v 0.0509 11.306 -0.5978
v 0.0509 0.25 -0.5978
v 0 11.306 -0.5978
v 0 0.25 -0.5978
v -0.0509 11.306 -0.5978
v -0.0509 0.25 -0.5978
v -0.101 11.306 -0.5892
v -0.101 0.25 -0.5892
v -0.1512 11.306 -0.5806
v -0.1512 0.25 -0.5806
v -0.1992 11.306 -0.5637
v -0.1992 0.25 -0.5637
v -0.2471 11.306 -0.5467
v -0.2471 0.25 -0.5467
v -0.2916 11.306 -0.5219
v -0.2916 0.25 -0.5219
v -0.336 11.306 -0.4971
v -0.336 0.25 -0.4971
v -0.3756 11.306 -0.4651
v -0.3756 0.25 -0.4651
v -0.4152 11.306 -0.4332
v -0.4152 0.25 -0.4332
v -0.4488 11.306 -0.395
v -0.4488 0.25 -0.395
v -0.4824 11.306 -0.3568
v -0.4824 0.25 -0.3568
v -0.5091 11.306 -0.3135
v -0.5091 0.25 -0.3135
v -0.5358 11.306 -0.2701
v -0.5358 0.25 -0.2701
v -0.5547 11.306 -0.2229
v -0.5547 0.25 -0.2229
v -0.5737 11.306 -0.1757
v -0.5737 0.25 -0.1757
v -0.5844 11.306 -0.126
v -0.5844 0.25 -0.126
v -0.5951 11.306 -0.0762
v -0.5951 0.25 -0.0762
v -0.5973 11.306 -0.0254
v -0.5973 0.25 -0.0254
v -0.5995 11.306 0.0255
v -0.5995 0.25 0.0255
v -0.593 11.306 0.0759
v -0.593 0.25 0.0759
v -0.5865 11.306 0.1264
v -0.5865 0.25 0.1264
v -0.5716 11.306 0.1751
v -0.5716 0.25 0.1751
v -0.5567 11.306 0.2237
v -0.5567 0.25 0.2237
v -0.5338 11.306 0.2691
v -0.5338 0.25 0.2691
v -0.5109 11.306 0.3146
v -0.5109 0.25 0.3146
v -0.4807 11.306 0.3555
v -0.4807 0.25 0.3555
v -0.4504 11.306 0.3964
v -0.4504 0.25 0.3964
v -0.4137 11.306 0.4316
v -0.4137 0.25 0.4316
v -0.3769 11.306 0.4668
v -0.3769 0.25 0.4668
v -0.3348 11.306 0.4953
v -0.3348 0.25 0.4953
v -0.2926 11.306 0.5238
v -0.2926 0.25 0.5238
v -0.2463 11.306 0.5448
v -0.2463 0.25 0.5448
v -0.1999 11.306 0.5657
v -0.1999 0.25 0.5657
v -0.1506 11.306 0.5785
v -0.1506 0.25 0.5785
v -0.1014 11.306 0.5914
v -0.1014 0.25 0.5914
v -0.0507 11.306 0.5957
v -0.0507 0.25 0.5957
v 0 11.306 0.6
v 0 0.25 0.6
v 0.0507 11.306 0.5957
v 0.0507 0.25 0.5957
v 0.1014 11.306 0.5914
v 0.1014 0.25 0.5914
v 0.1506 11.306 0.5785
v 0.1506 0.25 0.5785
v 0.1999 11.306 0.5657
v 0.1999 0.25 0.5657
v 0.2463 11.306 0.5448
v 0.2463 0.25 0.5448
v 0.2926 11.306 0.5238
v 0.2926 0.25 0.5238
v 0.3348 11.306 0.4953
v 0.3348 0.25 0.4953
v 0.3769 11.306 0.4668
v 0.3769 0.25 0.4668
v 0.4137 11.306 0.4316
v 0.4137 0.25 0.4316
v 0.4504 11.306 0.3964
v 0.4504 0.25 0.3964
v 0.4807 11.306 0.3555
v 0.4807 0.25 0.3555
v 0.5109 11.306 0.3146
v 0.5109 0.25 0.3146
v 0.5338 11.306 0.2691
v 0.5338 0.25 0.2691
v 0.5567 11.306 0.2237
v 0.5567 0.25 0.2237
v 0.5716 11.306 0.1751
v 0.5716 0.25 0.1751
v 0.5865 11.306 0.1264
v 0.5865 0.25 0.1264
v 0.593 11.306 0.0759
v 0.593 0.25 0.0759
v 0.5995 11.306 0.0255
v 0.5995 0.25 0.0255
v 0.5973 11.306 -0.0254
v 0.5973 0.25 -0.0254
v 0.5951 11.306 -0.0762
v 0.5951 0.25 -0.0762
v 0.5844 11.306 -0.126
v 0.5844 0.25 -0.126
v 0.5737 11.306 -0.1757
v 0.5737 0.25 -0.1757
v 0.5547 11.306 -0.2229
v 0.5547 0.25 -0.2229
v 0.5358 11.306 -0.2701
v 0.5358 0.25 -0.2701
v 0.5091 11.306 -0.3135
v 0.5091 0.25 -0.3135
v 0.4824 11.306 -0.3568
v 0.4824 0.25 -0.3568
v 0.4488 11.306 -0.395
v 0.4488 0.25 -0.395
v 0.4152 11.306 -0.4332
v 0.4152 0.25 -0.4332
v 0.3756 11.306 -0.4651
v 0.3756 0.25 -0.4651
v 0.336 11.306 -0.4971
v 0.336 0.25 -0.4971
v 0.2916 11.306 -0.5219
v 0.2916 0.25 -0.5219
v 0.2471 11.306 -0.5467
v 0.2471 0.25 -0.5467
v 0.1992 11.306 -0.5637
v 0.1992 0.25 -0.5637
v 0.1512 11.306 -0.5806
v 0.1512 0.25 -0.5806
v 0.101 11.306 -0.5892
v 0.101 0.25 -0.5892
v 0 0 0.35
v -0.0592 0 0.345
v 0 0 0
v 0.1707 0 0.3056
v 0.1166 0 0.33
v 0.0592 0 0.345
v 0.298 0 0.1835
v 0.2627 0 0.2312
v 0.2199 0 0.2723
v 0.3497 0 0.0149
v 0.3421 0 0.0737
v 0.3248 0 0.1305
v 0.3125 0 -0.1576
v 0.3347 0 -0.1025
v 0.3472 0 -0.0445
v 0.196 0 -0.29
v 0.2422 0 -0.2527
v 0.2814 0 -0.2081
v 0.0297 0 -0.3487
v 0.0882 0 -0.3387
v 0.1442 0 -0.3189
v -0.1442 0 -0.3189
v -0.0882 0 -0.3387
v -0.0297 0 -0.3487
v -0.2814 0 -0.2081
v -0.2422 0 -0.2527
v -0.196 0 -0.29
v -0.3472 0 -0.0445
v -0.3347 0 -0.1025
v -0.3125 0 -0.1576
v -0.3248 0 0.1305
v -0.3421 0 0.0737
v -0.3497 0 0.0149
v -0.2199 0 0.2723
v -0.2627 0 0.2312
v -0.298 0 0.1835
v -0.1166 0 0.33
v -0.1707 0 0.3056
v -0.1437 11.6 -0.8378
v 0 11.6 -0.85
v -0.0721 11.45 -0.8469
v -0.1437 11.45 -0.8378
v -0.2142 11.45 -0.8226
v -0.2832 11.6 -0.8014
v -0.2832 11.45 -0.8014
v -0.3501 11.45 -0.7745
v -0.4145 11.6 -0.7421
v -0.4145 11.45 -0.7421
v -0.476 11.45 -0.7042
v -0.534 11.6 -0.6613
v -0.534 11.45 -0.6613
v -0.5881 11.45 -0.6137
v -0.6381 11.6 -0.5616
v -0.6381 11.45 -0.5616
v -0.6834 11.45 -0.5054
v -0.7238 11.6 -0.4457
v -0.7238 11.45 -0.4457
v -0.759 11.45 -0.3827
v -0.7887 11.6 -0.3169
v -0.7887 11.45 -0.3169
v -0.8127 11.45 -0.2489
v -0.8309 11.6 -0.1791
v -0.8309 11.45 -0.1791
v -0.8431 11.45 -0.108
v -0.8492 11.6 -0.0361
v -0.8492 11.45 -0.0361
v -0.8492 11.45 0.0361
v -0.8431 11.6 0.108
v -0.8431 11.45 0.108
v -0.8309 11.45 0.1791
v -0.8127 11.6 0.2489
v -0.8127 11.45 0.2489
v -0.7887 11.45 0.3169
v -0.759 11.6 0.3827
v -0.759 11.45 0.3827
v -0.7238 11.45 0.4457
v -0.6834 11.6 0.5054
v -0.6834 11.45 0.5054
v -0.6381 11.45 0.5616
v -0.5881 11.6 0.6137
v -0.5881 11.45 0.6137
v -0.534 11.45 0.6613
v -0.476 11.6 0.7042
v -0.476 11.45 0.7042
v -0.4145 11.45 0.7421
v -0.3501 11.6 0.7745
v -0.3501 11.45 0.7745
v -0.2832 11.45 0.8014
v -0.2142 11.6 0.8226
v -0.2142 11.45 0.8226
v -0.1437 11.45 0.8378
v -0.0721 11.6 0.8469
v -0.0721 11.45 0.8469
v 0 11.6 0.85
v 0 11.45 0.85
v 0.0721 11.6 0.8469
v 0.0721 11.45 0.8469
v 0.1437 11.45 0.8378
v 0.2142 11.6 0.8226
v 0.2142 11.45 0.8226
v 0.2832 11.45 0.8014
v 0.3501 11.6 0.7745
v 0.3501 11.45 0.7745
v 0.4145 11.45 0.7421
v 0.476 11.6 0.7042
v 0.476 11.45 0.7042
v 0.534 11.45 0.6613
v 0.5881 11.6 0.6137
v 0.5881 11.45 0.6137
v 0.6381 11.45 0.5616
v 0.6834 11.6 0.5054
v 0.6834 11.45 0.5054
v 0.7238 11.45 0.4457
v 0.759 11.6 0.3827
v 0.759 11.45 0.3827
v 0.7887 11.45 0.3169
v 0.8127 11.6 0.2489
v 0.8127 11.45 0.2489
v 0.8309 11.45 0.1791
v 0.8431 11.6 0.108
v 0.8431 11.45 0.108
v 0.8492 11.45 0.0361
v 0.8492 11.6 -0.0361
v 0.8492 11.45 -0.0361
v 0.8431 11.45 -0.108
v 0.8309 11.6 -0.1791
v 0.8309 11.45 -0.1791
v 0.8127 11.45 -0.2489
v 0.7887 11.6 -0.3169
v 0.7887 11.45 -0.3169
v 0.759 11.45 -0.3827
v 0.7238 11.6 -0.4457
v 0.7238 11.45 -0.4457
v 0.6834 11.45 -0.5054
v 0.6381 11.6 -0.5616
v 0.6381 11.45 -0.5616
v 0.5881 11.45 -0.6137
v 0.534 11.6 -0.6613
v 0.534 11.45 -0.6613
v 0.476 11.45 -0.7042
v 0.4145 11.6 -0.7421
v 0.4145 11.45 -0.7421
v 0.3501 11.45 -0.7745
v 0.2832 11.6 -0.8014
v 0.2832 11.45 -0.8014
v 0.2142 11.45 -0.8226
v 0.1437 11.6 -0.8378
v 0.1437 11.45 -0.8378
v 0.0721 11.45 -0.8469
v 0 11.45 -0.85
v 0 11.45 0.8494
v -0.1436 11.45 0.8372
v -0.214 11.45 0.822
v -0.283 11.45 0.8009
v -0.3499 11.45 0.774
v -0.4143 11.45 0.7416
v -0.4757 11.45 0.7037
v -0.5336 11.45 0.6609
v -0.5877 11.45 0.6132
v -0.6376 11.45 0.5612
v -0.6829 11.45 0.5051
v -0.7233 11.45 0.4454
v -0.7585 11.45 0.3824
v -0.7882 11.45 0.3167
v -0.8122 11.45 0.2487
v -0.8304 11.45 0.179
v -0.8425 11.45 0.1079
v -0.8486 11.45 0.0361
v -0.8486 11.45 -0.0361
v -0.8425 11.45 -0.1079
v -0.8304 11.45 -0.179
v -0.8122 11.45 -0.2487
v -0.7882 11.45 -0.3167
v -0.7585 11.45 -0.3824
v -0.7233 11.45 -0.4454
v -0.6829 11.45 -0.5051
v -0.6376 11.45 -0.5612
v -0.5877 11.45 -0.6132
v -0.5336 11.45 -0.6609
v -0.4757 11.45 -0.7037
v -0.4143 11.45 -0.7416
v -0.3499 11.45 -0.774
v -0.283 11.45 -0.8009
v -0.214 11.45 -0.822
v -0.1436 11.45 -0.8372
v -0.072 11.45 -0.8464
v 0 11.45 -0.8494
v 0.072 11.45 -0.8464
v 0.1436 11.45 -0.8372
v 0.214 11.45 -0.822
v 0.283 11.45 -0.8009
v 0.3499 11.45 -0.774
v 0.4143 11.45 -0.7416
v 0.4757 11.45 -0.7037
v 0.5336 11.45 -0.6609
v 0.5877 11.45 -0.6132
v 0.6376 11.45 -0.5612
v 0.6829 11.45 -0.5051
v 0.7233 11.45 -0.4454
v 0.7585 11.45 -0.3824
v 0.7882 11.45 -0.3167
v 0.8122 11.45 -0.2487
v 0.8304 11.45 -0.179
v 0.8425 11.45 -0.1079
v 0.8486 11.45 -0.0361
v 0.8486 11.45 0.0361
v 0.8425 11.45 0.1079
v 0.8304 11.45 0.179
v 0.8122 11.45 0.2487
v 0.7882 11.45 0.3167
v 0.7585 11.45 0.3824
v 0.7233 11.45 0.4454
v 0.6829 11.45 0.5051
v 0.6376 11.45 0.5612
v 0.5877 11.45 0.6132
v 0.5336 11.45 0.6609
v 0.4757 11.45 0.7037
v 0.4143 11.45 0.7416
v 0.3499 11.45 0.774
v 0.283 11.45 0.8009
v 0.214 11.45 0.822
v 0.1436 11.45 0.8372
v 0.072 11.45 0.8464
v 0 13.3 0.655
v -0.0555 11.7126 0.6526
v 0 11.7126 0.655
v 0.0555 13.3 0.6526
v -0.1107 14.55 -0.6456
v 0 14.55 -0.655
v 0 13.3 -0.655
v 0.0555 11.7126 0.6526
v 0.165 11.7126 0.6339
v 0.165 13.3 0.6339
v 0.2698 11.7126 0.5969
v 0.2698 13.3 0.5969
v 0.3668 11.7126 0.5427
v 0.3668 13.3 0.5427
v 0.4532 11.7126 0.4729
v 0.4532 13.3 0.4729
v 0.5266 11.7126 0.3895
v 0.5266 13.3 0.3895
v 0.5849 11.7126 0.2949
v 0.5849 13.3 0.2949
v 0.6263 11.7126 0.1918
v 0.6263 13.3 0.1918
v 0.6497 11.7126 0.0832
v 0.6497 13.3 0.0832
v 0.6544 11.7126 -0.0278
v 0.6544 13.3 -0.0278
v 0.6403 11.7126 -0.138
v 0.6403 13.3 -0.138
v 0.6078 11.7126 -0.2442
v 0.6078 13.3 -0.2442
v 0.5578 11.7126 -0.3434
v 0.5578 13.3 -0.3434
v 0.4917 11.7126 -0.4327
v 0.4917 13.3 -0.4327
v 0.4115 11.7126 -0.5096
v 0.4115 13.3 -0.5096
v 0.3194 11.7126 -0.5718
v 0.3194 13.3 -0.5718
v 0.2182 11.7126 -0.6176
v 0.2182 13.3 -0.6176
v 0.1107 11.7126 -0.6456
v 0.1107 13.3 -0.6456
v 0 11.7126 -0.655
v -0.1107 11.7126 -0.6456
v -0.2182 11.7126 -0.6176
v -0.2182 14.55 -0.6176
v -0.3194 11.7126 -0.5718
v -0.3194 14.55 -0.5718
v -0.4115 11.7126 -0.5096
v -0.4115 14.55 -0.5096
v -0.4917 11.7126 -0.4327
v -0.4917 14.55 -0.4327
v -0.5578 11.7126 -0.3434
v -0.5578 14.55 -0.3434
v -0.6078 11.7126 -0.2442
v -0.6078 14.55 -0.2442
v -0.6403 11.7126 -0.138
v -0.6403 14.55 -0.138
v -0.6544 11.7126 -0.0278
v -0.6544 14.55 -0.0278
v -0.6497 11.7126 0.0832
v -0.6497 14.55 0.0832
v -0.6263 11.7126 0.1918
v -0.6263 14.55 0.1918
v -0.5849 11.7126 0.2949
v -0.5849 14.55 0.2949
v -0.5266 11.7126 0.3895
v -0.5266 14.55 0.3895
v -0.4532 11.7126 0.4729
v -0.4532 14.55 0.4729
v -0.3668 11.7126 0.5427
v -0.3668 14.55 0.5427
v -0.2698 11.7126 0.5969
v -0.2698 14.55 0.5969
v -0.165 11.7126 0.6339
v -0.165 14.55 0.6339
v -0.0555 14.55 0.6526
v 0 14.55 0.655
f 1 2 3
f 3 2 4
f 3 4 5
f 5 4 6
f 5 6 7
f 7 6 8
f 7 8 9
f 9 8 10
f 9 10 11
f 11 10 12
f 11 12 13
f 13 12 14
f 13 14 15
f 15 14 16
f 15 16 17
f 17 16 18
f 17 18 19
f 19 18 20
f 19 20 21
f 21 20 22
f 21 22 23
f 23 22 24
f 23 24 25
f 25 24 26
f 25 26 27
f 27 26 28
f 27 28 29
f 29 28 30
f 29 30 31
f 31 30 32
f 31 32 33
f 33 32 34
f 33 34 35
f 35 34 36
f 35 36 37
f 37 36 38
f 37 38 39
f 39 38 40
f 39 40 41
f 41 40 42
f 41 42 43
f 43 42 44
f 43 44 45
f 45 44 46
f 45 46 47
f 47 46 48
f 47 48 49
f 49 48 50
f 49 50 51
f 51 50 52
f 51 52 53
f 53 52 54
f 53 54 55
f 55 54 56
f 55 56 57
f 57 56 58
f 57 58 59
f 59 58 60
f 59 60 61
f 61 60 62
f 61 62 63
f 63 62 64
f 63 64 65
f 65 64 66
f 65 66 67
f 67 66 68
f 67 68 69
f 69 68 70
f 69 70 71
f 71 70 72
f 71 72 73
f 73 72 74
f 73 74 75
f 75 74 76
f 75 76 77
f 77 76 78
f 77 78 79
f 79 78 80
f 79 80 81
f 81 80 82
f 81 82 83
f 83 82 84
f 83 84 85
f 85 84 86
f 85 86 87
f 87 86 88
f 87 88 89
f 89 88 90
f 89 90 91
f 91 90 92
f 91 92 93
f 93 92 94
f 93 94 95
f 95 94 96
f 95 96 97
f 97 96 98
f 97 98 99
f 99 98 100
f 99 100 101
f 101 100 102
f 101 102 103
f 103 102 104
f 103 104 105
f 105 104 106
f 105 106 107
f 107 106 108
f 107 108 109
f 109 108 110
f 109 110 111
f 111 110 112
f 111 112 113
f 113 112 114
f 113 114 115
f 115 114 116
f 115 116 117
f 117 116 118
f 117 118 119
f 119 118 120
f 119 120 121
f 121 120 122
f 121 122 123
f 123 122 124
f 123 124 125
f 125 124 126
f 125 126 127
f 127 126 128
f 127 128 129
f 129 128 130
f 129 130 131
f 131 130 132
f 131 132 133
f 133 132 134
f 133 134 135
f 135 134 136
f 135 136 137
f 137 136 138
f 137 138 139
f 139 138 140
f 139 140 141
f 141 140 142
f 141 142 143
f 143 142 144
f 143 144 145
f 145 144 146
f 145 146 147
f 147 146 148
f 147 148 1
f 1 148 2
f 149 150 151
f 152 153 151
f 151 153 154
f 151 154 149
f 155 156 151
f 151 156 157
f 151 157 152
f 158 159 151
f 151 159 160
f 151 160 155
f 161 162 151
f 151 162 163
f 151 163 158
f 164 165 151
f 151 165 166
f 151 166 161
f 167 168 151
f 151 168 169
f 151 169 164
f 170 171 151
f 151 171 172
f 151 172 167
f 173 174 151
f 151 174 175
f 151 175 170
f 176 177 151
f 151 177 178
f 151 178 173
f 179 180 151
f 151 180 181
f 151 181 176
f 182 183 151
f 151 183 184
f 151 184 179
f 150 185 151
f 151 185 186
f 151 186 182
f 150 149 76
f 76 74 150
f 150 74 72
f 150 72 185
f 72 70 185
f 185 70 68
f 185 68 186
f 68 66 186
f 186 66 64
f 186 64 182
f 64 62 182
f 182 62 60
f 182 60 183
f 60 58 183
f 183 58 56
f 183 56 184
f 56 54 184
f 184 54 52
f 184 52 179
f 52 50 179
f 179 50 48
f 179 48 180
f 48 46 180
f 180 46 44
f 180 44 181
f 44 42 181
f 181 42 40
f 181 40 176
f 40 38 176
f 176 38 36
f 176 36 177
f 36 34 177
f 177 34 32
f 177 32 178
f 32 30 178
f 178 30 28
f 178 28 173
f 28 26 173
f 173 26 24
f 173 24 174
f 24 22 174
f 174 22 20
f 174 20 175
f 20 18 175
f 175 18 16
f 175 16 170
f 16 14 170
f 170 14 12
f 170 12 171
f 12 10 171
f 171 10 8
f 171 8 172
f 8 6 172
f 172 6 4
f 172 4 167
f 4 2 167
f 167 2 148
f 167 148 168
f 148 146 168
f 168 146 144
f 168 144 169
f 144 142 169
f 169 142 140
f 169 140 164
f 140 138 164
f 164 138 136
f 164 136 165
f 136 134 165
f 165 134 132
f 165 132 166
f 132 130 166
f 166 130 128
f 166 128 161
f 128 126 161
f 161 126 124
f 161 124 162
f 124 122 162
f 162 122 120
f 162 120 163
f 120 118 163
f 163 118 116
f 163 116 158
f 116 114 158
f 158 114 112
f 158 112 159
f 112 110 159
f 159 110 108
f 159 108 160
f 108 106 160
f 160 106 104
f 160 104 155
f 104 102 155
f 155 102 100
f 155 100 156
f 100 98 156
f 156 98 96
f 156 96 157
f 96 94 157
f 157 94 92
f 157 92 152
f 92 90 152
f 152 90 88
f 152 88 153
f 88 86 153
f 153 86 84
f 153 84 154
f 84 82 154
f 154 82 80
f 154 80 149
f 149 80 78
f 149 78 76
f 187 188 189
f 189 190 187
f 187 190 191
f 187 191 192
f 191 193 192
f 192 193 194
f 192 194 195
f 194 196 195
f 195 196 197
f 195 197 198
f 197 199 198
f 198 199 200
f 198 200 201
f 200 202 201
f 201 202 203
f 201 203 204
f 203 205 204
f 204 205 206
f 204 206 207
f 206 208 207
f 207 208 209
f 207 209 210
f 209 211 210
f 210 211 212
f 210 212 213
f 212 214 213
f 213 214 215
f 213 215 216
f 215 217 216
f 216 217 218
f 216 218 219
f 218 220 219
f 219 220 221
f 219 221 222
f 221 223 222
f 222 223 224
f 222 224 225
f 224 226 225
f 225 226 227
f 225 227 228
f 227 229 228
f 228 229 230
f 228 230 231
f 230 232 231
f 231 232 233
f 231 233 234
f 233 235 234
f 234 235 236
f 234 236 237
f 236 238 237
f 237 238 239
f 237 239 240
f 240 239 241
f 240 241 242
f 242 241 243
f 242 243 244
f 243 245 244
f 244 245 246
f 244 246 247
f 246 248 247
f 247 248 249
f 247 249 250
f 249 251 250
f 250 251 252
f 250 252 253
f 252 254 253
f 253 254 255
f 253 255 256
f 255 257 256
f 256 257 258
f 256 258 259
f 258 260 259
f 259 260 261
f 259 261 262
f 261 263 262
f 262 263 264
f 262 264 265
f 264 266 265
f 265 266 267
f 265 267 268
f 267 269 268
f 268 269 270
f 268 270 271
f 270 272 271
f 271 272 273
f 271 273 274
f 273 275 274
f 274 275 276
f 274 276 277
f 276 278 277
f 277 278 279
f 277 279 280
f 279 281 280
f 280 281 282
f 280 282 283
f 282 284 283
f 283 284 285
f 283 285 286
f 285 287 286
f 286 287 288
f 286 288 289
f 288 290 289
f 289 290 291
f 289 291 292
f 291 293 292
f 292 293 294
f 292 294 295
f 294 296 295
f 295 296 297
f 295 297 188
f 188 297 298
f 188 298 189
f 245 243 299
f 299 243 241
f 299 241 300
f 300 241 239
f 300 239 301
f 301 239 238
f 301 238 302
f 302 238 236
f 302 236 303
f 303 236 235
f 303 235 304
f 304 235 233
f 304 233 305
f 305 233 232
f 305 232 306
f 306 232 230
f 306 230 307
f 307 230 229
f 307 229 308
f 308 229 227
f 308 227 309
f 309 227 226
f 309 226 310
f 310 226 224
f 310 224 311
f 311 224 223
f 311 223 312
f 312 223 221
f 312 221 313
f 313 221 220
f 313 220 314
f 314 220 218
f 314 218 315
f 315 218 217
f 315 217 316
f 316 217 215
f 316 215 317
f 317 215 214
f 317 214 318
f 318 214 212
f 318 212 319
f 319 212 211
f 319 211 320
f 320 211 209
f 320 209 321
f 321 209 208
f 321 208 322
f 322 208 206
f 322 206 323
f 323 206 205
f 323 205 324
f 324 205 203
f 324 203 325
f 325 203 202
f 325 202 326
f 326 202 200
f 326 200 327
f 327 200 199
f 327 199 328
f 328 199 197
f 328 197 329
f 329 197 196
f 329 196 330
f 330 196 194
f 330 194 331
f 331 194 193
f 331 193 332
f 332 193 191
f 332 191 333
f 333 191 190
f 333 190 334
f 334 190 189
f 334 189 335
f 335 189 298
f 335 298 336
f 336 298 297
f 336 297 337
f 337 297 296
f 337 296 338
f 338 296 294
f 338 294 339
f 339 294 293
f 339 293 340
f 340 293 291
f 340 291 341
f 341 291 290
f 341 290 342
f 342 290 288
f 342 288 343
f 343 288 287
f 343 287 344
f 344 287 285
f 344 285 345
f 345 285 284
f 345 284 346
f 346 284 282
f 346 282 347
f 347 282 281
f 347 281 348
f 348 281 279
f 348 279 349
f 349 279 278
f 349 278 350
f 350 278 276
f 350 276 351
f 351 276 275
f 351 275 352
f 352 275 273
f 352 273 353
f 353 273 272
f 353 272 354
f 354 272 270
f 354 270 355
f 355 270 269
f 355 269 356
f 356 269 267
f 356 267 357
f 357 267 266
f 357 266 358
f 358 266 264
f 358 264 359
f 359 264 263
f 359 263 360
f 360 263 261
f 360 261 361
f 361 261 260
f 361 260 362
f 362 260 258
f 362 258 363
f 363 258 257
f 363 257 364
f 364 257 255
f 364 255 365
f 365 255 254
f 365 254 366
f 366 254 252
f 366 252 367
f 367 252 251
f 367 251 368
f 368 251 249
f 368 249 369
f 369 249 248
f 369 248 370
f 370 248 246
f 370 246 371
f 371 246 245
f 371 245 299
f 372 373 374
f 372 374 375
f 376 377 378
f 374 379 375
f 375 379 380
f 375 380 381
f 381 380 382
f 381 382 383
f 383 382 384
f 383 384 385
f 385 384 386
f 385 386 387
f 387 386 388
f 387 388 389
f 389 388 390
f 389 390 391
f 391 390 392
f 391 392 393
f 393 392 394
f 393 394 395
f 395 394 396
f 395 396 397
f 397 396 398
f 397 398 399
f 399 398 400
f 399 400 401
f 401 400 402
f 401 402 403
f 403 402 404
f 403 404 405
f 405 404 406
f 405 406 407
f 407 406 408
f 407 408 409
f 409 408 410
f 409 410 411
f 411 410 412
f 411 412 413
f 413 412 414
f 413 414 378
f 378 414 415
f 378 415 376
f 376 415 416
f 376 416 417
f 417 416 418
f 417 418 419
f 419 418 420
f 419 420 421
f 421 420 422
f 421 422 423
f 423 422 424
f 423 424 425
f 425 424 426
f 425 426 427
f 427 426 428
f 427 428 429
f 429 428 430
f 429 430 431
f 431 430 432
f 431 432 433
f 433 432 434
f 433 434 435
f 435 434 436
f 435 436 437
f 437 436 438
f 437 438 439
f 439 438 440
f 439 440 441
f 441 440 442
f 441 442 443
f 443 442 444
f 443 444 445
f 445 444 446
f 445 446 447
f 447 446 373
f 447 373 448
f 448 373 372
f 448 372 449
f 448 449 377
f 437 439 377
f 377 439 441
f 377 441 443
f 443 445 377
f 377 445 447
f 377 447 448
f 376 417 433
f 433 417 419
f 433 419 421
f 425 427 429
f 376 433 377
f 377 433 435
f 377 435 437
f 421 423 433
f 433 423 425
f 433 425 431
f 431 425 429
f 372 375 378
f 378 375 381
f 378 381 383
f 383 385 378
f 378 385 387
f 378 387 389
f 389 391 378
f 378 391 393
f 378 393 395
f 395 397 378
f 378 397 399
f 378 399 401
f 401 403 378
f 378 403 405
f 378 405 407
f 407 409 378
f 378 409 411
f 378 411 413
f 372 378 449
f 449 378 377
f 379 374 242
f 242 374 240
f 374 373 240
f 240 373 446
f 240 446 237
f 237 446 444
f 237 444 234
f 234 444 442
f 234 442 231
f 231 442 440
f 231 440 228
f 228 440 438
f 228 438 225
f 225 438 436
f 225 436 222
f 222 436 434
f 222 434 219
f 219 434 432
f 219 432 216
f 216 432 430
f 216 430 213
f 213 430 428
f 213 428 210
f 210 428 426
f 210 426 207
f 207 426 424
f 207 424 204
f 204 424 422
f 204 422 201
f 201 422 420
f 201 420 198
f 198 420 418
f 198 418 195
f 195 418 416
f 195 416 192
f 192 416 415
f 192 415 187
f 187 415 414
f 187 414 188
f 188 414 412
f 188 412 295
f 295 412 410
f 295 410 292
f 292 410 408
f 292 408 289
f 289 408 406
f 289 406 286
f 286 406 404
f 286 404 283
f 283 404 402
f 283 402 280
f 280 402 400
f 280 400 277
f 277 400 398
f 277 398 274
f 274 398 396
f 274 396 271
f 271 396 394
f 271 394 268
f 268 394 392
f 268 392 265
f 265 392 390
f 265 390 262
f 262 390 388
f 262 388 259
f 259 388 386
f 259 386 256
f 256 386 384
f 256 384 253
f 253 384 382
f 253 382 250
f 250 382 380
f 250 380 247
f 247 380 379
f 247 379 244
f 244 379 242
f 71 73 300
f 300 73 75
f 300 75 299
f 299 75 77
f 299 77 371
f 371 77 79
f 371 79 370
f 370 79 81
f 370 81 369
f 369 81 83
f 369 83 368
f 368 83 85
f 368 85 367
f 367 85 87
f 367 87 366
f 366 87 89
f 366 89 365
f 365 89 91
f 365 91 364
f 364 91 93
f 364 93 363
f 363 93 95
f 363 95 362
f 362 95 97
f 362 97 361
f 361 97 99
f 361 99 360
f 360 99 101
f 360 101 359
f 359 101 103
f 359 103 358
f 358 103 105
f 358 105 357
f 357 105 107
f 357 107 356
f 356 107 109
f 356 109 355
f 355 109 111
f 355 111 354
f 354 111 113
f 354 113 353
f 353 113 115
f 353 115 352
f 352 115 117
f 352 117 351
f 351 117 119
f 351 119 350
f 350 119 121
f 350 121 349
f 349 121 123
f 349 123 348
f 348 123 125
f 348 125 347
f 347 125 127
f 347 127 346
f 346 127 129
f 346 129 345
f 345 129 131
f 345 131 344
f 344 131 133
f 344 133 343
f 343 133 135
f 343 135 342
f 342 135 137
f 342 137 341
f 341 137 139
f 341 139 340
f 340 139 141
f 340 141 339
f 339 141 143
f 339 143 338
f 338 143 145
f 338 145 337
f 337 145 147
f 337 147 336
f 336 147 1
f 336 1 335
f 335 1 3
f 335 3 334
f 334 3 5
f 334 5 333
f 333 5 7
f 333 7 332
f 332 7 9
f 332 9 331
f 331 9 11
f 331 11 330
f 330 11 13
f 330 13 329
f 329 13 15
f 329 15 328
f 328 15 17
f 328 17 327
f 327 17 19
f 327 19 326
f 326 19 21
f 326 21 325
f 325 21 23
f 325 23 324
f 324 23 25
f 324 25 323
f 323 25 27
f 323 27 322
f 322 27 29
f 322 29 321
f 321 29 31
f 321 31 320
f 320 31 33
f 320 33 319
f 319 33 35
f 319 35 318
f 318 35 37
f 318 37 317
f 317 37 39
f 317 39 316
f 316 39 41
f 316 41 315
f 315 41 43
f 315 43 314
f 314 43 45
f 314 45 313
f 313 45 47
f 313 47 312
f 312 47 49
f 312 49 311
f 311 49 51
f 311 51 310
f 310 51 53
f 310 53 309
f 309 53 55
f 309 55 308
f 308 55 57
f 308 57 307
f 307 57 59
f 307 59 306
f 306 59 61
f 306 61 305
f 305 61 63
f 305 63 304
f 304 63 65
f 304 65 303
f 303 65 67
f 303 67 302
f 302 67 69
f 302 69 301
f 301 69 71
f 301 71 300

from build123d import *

# Parameters (mm, degrees)
SKETCH1_R           = 0.6
BOSS_EXTRUDE1_DEPTH = 11.45
CHAMFER1_SIZE       = 0.25
SKETCH3_R           = 0.85
BOSS_EXTRUDE2_DEPTH = 0.15
SKETCH4_R           = 0.655
BOSS_EXTRUDE3_DEPTH = 2.95
SKETCH5_W           = 0.965055555
SKETCH5_H           = 1.860066756
CUT_EXTRUDE1_DEPTH  = 1.25
CHAMFER2_SIZE       = 0.195
CHAMFER2_SIZE_2     = 0.112583302
CHAMFER3_SIZE       = 0.144
CHAMFER3_SIZE2      = 0.249415316


with BuildPart() as part:
    # Sketch1 → Boss-Extrude1 (new body)
    with BuildSketch(Plane(origin=(0, 0, 0), x_dir=(1, 0, 0), z_dir=(0, 1, 0))):
        with Locations(Location((0, 0, 0), (0, 0, 270))):
            Circle(SKETCH1_R)
    extrude(amount=BOSS_EXTRUDE1_DEPTH)

    # Chamfer1
    chamfer1_edges = [part.edges().sort_by_distance(p)[0] for p in [
        (0, 0, -0.6),
    ]]
    chamfer(chamfer1_edges, length=CHAMFER1_SIZE)

    # Sketch3 → Boss-Extrude2 (add)
    with BuildSketch(Plane(origin=(0, 11.45, 0), x_dir=(1, 0, 0), z_dir=(0, 1, 0))):
        with Locations(Location((0, 0, 0), (0, 0, 270))):
            Circle(SKETCH3_R)
    extrude(amount=BOSS_EXTRUDE2_DEPTH)

    # Sketch4 → Boss-Extrude3 (add)
    with BuildSketch(Plane(origin=(0, 11.6, 0), x_dir=(1, 0, 0), z_dir=(0, 1, 0))):
        with Locations(Location((0, 0, 0), (0, 0, 270))):
            Circle(SKETCH4_R)
    extrude(amount=BOSS_EXTRUDE3_DEPTH)

    # Sketch5 → Cut-Extrude1 (cut)
    with BuildSketch(Plane(origin=(0, 14.55, 0), x_dir=(1, 0, 0), z_dir=(0, 1, 0))):
        with Locations((0.482527778, -0.010701221)):
            Rectangle(SKETCH5_W, SKETCH5_H)
    extrude(amount=-CUT_EXTRUDE1_DEPTH, mode=Mode.SUBTRACT)

    # Chamfer2
    # the kernel refuses this chamfer: 0.195, 0.112583302 mm, written as the material it adds along each edge
    with BuildSketch(Plane(origin=(0, 11.6, 0), x_dir=(0, 0, 1), z_dir=(-1, 0, 0))) as chamfer2_piece_1_section:
        Polygon((0.655 + CHAMFER2_SIZE, 0), (0.655, CHAMFER2_SIZE_2 * 1.00000000437), (0.655, 0), align=None)
    chamfer2_piece_1 = revolve(axis=Axis((0, 11.6, 0), (0, 1, 0)), mode=Mode.PRIVATE)
    chamfer2_piece_1 = chamfer2_piece_1 & Plane(origin=(0, 11.654924412, 0), x_dir=(0, 0, 1), z_dir=(0, -1, 0)) * Cylinder(0.85, 4, mode=Mode.PRIVATE)
    add(chamfer2_piece_1)

    # Chamfer3
    chamfer3_edges = [part.edges().sort_by_distance(p)[0] for p in [
        (0, 11.45, -0.6),
    ]]
    chamfer3_side = [part.faces().sort_by_distance(p)[0] for p in [
        (0, 5.85, -0.6),
    ]]
    chamfer(chamfer3_edges, length=CHAMFER3_SIZE, length2=CHAMFER3_SIZE2, reference=chamfer3_side[0])


solid = part.part
